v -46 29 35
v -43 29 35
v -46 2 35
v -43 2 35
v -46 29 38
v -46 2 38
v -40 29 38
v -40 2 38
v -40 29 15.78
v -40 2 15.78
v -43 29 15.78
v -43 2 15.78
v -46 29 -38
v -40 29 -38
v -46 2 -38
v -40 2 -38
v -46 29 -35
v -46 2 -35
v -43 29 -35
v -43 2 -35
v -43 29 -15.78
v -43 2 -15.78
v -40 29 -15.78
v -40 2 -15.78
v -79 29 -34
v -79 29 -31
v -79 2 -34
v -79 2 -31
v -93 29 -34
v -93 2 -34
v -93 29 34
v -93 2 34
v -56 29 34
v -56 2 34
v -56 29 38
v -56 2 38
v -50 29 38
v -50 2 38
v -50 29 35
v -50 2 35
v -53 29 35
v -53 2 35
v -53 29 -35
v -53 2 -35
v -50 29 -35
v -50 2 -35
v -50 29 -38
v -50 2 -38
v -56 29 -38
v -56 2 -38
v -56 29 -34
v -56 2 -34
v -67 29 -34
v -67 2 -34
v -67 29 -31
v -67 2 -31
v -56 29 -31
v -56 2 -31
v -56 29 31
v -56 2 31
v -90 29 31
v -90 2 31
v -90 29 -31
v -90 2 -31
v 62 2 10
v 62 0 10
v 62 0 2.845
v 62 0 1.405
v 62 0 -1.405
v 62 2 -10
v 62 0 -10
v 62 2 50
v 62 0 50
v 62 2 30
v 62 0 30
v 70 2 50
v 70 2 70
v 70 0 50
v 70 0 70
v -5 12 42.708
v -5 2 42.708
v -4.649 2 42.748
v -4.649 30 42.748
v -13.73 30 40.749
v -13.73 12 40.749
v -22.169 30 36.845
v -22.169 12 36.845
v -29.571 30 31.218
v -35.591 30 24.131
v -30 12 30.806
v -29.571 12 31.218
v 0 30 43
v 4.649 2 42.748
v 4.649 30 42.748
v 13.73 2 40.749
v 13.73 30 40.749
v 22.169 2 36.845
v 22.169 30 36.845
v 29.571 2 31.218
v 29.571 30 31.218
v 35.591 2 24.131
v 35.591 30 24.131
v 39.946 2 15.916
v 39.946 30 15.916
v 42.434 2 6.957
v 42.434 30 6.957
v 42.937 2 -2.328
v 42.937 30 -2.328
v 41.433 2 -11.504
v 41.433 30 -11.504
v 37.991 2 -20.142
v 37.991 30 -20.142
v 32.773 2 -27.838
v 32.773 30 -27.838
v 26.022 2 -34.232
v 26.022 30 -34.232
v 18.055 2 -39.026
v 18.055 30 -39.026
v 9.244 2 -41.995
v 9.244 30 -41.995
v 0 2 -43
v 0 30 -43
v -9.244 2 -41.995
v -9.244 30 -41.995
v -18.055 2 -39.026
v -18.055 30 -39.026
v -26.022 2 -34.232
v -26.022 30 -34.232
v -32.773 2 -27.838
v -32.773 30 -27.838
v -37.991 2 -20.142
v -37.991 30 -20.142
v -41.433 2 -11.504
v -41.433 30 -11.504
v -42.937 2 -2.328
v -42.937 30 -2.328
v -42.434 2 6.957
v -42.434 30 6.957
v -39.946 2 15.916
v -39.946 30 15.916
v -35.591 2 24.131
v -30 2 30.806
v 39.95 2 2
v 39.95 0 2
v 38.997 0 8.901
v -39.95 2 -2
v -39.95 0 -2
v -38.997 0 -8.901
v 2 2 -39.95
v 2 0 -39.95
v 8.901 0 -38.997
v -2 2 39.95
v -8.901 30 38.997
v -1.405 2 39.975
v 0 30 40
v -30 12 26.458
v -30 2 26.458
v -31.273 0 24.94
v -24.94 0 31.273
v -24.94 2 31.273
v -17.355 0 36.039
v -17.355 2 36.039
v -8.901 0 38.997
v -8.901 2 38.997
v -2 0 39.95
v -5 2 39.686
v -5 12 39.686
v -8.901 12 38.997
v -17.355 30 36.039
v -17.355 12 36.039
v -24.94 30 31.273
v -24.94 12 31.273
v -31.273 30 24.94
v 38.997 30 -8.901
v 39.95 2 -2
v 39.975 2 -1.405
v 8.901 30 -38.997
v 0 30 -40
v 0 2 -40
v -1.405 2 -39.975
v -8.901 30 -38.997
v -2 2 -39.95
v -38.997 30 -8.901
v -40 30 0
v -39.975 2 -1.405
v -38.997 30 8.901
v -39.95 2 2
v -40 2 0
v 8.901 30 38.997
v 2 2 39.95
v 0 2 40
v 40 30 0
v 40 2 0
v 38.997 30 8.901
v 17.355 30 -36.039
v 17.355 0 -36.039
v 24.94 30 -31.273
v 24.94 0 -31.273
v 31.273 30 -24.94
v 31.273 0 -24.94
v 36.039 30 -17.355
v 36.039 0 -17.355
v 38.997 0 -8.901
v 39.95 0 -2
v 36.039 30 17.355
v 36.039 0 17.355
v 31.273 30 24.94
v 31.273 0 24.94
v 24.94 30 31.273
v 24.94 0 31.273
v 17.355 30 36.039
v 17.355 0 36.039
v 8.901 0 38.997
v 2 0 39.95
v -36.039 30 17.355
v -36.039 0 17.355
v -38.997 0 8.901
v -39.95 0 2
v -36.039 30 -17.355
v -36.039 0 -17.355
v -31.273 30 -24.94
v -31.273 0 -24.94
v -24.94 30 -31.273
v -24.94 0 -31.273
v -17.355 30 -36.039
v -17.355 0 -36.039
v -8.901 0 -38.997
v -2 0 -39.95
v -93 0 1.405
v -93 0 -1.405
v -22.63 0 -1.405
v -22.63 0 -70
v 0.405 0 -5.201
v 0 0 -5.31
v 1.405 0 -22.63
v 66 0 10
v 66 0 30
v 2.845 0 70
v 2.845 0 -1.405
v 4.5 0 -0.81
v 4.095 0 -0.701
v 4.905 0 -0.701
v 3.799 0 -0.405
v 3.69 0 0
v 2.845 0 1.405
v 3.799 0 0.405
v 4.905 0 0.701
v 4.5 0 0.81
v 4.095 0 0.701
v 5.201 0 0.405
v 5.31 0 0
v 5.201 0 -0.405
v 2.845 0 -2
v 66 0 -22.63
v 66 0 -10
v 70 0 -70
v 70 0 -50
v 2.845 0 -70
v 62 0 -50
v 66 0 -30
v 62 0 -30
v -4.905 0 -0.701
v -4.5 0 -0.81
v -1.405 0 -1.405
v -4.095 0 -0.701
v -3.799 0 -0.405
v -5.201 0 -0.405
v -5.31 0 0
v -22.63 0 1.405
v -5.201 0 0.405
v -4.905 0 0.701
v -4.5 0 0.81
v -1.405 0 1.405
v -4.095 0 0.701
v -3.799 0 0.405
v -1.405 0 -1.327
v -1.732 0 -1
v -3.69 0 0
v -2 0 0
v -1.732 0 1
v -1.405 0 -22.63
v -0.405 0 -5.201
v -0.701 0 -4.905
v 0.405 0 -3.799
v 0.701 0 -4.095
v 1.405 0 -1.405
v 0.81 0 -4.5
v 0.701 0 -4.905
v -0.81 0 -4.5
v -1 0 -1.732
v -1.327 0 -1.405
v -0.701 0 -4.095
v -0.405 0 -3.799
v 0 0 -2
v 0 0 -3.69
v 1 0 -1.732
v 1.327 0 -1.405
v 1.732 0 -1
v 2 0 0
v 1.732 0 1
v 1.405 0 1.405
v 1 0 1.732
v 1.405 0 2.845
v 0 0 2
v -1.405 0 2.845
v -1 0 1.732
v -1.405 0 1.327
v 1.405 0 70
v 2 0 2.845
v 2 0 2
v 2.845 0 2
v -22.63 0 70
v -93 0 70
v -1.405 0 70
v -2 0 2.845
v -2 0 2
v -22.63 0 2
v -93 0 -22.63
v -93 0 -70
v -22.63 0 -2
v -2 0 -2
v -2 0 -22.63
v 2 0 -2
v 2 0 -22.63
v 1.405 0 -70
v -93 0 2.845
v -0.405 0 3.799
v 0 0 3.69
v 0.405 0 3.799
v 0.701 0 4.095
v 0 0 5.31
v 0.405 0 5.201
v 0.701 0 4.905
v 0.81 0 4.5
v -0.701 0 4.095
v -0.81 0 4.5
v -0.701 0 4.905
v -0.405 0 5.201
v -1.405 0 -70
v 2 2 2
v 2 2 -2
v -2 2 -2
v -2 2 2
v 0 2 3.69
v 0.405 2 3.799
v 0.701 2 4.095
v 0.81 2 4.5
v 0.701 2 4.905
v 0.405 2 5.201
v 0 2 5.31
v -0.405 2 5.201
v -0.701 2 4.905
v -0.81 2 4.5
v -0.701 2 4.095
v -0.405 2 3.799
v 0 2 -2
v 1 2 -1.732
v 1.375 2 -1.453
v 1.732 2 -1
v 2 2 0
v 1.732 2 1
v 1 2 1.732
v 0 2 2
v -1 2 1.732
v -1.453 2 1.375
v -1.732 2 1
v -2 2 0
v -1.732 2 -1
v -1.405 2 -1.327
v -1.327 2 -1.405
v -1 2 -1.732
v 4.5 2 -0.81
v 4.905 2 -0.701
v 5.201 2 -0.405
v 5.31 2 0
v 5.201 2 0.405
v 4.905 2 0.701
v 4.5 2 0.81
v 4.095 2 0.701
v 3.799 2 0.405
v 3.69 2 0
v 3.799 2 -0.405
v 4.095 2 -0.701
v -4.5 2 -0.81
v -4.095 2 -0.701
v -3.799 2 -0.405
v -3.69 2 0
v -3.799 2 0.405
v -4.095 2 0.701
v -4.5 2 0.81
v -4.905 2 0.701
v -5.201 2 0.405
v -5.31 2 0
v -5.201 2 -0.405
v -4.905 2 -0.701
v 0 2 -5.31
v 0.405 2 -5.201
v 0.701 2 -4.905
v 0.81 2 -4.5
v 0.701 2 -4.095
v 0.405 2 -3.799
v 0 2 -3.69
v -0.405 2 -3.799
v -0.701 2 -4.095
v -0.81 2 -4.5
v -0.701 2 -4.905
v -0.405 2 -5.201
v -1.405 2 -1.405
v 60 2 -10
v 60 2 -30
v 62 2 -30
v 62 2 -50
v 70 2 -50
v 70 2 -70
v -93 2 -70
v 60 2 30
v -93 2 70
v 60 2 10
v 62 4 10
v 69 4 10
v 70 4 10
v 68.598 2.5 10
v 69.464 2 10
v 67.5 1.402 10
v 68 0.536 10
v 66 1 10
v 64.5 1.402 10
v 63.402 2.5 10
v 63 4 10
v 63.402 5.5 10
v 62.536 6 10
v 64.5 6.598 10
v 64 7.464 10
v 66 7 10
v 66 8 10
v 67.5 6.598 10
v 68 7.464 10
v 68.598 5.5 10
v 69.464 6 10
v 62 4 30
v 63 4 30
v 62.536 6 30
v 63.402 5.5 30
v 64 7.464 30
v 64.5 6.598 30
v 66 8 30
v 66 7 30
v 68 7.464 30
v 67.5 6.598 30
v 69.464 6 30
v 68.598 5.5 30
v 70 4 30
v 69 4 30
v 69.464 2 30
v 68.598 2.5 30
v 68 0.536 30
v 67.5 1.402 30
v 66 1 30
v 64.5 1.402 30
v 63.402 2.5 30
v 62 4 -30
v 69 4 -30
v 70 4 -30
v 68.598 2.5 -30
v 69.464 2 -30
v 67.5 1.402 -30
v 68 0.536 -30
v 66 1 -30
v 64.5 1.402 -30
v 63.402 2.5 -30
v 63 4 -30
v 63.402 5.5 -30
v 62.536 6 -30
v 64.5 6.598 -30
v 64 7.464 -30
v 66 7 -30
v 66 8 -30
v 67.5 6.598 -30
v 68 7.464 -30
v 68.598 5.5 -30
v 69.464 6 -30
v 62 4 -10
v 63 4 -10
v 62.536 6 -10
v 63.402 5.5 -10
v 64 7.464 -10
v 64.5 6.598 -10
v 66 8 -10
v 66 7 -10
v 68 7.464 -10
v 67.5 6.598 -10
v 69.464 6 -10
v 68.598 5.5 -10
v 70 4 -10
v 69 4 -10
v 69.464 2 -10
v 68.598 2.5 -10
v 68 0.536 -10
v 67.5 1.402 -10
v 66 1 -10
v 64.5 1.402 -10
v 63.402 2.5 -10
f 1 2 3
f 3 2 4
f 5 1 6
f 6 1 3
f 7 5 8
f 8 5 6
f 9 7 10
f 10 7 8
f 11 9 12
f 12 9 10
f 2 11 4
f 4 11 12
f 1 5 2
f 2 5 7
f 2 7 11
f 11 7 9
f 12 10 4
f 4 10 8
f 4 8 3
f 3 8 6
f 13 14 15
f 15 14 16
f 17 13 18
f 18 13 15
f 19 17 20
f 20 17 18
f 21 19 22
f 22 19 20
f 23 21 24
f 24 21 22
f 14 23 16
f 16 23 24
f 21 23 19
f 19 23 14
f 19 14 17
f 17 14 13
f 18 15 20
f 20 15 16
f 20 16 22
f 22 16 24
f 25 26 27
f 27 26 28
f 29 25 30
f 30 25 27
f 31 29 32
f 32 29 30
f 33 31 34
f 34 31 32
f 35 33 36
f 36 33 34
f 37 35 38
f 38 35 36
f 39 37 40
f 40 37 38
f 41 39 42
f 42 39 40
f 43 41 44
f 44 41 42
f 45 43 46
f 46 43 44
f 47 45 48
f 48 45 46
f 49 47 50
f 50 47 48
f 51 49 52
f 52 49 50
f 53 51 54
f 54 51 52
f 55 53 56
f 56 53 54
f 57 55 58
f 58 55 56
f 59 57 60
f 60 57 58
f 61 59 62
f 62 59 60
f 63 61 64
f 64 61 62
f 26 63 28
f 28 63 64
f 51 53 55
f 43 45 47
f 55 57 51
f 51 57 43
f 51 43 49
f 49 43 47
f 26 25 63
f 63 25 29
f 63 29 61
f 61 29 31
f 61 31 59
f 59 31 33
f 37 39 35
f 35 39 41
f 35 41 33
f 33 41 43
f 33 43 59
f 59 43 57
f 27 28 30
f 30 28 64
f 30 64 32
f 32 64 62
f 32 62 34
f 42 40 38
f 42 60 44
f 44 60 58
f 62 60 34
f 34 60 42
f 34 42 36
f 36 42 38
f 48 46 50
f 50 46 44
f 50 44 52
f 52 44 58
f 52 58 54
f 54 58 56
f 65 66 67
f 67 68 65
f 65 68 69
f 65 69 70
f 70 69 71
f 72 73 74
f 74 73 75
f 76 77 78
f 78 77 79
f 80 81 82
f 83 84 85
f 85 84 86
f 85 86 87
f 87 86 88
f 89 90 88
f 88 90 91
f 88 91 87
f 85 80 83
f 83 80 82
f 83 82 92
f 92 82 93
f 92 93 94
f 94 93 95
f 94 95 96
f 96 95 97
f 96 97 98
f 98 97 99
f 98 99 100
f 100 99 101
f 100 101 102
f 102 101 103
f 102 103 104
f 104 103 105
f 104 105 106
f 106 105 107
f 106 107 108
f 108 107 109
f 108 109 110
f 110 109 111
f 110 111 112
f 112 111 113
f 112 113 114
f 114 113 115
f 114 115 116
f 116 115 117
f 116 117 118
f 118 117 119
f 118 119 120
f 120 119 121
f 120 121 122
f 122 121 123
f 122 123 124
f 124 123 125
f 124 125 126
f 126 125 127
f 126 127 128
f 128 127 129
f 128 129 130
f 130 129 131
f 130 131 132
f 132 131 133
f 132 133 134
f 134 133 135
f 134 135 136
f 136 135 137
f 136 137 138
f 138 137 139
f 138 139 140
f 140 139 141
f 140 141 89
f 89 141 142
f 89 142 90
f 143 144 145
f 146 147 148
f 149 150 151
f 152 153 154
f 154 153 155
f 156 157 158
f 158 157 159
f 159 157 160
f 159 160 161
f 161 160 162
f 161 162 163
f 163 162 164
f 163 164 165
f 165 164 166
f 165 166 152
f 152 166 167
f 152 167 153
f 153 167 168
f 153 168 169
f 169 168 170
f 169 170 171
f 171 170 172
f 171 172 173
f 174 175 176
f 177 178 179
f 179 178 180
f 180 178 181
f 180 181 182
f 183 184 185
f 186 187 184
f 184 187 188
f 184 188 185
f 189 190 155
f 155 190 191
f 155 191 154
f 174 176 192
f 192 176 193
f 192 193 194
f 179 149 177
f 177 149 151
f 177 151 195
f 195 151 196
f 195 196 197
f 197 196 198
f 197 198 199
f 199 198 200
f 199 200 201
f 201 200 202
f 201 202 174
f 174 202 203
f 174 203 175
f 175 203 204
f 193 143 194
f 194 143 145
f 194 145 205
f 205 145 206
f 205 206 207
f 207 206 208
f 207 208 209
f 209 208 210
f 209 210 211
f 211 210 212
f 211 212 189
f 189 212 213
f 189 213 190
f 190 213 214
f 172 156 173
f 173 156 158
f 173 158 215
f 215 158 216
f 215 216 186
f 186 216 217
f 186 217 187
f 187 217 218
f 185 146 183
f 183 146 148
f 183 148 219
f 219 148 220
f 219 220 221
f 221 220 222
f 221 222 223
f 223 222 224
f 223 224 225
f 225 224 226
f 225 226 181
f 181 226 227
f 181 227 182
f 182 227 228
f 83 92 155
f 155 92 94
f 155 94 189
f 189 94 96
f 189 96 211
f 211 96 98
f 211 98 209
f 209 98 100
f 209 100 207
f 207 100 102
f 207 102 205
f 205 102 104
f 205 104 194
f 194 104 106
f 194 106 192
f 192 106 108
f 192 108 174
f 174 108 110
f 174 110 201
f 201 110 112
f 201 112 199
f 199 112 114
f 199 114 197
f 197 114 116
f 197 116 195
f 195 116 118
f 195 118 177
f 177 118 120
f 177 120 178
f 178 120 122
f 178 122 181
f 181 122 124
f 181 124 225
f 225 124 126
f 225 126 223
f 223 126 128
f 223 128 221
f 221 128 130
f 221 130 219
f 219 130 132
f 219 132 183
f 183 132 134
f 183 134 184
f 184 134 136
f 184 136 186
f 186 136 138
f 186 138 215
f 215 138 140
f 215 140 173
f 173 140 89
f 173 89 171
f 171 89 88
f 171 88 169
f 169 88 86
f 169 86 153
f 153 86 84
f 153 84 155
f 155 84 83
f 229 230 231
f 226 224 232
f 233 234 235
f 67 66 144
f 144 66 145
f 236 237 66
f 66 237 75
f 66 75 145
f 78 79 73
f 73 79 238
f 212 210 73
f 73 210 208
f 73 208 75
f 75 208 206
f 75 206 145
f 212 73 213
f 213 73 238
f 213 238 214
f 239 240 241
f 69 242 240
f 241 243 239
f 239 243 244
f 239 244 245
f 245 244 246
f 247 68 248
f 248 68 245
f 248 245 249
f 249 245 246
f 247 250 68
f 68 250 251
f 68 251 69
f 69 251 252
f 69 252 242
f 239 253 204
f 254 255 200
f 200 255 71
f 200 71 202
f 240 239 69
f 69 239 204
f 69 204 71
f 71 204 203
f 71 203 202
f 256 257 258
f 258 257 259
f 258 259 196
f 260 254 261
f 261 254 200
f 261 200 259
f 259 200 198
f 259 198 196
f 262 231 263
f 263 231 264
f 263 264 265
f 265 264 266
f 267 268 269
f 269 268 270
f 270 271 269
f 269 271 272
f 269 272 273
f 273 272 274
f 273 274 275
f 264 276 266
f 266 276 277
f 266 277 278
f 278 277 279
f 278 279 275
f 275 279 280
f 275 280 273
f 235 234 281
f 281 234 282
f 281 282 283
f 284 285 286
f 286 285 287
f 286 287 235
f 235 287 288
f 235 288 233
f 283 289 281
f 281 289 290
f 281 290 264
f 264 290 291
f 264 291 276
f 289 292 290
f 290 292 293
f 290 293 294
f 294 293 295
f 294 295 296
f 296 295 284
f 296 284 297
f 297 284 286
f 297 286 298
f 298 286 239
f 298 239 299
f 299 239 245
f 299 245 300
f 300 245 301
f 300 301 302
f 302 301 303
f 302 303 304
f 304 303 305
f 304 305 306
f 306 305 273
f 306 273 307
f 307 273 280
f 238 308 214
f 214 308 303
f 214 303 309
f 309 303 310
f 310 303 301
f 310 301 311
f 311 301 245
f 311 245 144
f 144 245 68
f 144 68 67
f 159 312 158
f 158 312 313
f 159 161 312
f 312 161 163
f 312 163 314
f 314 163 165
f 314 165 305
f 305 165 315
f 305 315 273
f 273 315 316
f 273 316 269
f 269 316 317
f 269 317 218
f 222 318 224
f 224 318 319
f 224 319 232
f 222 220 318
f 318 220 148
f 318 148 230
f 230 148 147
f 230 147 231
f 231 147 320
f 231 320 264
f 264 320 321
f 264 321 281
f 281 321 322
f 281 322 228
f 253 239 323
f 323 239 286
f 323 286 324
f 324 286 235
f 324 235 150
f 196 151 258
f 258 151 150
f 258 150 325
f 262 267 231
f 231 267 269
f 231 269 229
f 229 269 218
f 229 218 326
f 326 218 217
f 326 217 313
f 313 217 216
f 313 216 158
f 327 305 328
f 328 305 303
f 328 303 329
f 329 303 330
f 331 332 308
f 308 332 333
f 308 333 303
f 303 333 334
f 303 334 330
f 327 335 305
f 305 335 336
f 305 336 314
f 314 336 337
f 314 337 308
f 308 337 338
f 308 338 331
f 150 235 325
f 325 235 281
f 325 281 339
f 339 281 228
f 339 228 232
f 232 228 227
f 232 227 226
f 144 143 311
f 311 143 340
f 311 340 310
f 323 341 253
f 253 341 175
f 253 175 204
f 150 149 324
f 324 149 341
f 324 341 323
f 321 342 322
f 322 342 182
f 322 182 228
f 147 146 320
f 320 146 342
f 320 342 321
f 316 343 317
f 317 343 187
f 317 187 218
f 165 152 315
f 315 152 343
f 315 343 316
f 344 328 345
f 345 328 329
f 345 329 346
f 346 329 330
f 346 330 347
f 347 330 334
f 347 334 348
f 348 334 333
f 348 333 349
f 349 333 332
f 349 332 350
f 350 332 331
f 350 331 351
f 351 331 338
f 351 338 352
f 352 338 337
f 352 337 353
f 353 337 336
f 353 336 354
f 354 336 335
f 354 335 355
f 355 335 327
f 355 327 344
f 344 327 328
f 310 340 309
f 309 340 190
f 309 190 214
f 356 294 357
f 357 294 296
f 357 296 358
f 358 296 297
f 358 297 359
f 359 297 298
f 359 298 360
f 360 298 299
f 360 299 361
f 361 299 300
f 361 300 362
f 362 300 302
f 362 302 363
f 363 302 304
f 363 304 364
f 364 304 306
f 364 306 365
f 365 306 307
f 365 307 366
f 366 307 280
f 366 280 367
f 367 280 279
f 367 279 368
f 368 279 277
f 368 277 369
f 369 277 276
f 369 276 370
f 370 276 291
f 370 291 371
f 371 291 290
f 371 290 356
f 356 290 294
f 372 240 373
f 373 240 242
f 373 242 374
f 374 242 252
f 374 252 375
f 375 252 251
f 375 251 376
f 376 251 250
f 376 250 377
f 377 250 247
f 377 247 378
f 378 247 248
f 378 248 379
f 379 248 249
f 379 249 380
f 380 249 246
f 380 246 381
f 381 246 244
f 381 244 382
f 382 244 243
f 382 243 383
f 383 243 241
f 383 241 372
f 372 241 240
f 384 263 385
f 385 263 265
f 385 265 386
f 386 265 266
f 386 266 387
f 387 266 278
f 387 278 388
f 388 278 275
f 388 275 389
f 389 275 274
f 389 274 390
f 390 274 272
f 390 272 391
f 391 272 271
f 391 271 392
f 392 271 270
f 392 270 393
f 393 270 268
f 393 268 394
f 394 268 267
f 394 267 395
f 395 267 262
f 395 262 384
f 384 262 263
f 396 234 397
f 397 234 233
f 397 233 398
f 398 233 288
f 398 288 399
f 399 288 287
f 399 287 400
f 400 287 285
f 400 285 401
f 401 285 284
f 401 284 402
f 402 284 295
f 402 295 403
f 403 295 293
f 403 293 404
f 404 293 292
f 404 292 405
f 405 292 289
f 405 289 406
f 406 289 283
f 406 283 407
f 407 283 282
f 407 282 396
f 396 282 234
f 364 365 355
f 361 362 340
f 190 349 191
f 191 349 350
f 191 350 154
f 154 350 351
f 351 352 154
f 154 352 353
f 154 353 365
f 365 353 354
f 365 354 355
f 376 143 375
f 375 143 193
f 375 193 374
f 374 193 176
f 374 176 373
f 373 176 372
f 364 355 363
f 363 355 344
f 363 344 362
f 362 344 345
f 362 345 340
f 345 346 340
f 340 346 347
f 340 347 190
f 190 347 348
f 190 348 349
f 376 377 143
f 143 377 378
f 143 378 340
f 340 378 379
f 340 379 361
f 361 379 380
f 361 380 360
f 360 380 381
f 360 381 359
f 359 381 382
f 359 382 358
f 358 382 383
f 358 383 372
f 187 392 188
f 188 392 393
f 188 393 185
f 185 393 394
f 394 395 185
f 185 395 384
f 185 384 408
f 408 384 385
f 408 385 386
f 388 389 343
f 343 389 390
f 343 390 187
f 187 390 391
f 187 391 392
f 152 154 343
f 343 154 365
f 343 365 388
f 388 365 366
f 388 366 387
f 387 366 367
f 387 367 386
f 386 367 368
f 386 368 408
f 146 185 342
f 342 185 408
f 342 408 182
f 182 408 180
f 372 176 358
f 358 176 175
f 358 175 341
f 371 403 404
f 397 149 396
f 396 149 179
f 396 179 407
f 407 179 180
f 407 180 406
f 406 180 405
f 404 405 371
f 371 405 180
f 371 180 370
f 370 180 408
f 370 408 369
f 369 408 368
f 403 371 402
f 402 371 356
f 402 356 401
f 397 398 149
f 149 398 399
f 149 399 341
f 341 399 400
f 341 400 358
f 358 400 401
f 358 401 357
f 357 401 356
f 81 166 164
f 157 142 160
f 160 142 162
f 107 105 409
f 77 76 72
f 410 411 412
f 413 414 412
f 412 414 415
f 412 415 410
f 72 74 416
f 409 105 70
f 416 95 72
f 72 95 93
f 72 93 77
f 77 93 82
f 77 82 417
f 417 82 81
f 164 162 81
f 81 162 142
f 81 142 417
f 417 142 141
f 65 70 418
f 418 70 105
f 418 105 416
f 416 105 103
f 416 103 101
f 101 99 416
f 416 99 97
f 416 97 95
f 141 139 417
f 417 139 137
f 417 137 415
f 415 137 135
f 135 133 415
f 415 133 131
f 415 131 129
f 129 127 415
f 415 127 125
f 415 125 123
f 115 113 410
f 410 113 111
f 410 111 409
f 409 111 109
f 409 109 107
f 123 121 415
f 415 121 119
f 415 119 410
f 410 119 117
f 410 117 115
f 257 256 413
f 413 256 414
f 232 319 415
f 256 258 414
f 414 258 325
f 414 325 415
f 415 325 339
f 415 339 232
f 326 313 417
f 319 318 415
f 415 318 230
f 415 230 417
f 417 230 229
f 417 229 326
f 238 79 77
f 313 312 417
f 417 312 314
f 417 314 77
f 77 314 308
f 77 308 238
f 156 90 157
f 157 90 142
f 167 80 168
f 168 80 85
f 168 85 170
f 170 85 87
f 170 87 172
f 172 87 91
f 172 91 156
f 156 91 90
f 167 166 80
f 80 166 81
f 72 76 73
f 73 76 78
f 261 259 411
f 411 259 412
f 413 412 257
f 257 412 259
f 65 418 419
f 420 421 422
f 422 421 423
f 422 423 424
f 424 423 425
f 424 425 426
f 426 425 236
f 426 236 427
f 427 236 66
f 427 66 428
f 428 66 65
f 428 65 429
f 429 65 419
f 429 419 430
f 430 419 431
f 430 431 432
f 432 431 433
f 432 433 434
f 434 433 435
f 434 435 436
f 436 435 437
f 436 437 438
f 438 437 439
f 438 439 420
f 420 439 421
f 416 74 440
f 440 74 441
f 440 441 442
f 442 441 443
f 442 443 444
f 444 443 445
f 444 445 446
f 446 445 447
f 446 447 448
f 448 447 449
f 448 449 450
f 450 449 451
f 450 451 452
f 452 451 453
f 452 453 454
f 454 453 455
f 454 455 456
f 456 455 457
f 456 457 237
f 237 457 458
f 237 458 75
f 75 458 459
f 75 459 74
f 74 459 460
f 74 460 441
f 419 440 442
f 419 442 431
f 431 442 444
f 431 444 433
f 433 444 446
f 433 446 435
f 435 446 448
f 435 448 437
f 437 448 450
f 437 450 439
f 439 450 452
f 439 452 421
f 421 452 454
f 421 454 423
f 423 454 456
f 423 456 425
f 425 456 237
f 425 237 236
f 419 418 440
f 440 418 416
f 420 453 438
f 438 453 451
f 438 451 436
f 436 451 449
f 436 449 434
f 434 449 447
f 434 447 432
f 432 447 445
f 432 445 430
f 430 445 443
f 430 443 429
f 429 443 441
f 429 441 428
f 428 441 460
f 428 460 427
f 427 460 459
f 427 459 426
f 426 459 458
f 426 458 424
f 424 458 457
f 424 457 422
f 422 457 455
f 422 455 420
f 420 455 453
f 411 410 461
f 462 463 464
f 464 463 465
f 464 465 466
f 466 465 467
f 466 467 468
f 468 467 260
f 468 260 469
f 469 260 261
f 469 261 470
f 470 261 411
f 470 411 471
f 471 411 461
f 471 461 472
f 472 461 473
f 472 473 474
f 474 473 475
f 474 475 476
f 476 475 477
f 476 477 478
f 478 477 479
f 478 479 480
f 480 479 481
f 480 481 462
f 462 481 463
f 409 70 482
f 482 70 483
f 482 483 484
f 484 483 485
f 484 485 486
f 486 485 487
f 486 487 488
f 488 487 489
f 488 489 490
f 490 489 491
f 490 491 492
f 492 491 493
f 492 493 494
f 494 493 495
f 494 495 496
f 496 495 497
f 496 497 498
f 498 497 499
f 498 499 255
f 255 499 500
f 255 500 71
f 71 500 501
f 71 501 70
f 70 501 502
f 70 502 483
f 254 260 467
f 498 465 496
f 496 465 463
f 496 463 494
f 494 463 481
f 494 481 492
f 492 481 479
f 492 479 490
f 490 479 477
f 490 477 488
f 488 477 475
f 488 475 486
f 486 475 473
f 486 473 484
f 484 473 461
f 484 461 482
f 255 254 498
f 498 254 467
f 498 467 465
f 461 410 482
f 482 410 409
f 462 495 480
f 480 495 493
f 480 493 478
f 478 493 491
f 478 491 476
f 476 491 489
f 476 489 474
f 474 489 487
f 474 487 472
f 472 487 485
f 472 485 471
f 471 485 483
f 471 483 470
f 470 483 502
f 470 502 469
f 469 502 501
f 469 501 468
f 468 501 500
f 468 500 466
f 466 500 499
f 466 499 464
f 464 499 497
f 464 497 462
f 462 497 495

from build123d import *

# Parameters (mm, degrees)
CROQUIS1_R                 = 43
CROQUIS1_R_2               = 40
SALIENTE_EXTRUIR1_DEPTH    = 30
CROQUIS3_R                 = 0.81
CROQUIS3_R_2               = 2
SALIENTE_EXTRUIR2_DEPTH    = 2
CROQUIS4_W                 = 163
CROQUIS4_H                 = 140
CROQUIS4_R                 = 43
SALIENTE_EXTRUIR3_DEPTH    = 2
SALIENTE_EXTRUIR17_DEPTH   = 27
CORTAR_EXTRUIR1_REACH      = 172.731
CORTAR_EXTRUIR1_END_RADIUS = 40
CROQUIS15_W                = 25
CROQUIS15_H                = 10
CROQUIS17_W                = 8
CROQUIS17_H                = 100
CORTAR_EXTRUIR2_DEPTH      = 2
SALIENTE_EXTRUIR19_START   = 20
CROQUIS18_R                = 3
SALIENTE_EXTRUIR19_DEPTH   = 20
MATRIZL2_COUNT             = 2
MATRIZL2_PITCH             = 40


with BuildPart() as part:
    # Croquis1 → Saliente-Extruir1 (new body)
    with BuildSketch(Plane(origin=(0, 0, 0), x_dir=(1, 0, 0), z_dir=(0, 1, 0))):
        with Locations(Location((0, 0, 0), (0, 0, 270))):
            Circle(CROQUIS1_R)
        with Locations(Location((0, 0, 0), (0, 0, 270))):
            Circle(CROQUIS1_R_2, mode=Mode.SUBTRACT)
    extrude(amount=SALIENTE_EXTRUIR1_DEPTH)

    # Croquis3 → Saliente-Extruir2 (add)
    with BuildSketch(Plane(origin=(0, 0, 0), x_dir=(1, 0, 0), z_dir=(0, 1, 0))):
        with BuildLine():
            Line((-2, 39.949968711), (-2, 2))
            Line((-2, 2), (-39.949968711, 2))
            ThreePointArc((-39.949968711, 2), (-40, 0), (-39.949968711, -2))
            Line((-39.949968711, -2), (-2, -2))
            Line((-2, -2), (-2, -39.949968711))
            ThreePointArc((-2, -39.949968711), (0, -40), (2, -39.949968711))
            Line((2, -39.949968711), (2, -2))
            Line((2, -2), (39.949968711, -2))
            ThreePointArc((39.949968711, -2), (39.987490222, -1.000312842), (40, 0))
            ThreePointArc((40, 0), (39.987490222, 1.000312842), (39.949968711, 2))
            Line((39.949968711, 2), (2, 2))
            Line((2, 2), (2, 39.949968711))
            ThreePointArc((2, 39.949968711), (0, 40), (-2, 39.949968711))
        make_face()
        with Locations(Location((0, -4.5, 0), (0, 0, 270))):
            Circle(CROQUIS3_R, mode=Mode.SUBTRACT)
        with Locations(Location((-4.5, 0, 0), (0, 0, 270))):
            Circle(CROQUIS3_R, mode=Mode.SUBTRACT)
        with Locations(Location((0, 0, 0), (0, 0, 270))):
            Circle(CROQUIS3_R_2, mode=Mode.SUBTRACT)
        with Locations(Location((4.5, 0, 0), (0, 0, 270))):
            Circle(CROQUIS3_R, mode=Mode.SUBTRACT)
        with Locations(Location((0, 4.5, 0), (0, 0, 270))):
            Circle(CROQUIS3_R, mode=Mode.SUBTRACT)
    extrude(amount=SALIENTE_EXTRUIR2_DEPTH)

    # Croquis4 → Saliente-Extruir3 (add)
    with BuildSketch(Plane(origin=(0, 0, 0), x_dir=(1, 0, 0), z_dir=(0, 1, 0))):
        with Locations((-11.5, 0)):
            Rectangle(CROQUIS4_W, CROQUIS4_H)
        with Locations(Location((0, 0, 0), (0, 0, 90))):
            Circle(CROQUIS4_R, mode=Mode.SUBTRACT)
    extrude(amount=SALIENTE_EXTRUIR3_DEPTH)

    # Cortar-Extruir1: up to this cylinder (the profile starts outside it)
    cortar_extruir1_end = Plane(origin=(0, 7, 0), z_dir=(0, -1, 0)) * Cylinder(CORTAR_EXTRUIR1_END_RADIUS, 426.462, mode=Mode.PRIVATE)
    # Croquis15 → Cortar-Extruir1 (cut, up to the surface)
    with BuildSketch(Plane.XY.offset(70), mode=Mode.PRIVATE) as cortar_extruir1_sk1:
        with Locations((-17.5, 7)):
            Rectangle(CROQUIS15_W, CROQUIS15_H)
    cortar_extruir1_tool1 = extrude(cortar_extruir1_sk1.sketch, amount=-CORTAR_EXTRUIR1_REACH, mode=Mode.PRIVATE) - cortar_extruir1_end
    add(cortar_extruir1_tool1.solids().sort_by_distance((-17.5, 7, 70))[0], mode=Mode.SUBTRACT)
    # Croquis15 → Cortar-Extruir1 (cut, up to the surface)
    with BuildSketch(Plane.XY.offset(70), mode=Mode.PRIVATE) as cortar_extruir1_sk2:
        with Locations((-17.5, 7)):
            Rectangle(CROQUIS15_W, CROQUIS15_H)
    cortar_extruir1_tool2 = extrude(cortar_extruir1_sk2.sketch, amount=-CORTAR_EXTRUIR1_REACH, mode=Mode.PRIVATE) - cortar_extruir1_end
    add(cortar_extruir1_tool2.solids().sort_by_distance((-17.5, 7, 70))[0], mode=Mode.SUBTRACT)

    # Croquis17 → Cortar-Extruir2 (cut)
    with BuildSketch(Plane(origin=(0, 2, 0), x_dir=(1, 0, 0), z_dir=(0, 1, 0))):
        with Locations((66, 0)):
            Rectangle(CROQUIS17_W, CROQUIS17_H)
    extrude(amount=-CORTAR_EXTRUIR2_DEPTH, mode=Mode.SUBTRACT)

    # Croquis18 → Saliente-Extruir19 (add)
    with BuildSketch(Plane(origin=(0, 0, 50), x_dir=(-1, 0, 0), z_dir=(0, 0, -1)).offset(SALIENTE_EXTRUIR19_START)):
        with BuildLine():
            Line((-62, 0), (-62, 2))
            Line((-62, 2), (-60, 2))
            Line((-60, 2), (-62, 4))
            ThreePointArc((-62, 4), (-68.828427125, 6.828427125), (-66, 0))
            Line((-66, 0), (-62, 0))
        make_face()
        with Locations((-66, 4)):
            Circle(CROQUIS18_R, mode=Mode.SUBTRACT)
    saliente_extruir19 = extrude(amount=SALIENTE_EXTRUIR19_DEPTH)

    # MatrizL2: Saliente-Extruir19 ×2
    with Locations(*[(0, 0, -i * MATRIZL2_PITCH) for i in range(1, MATRIZL2_COUNT)]):
        add(saliente_extruir19)


with BuildPart() as body_2:
    # Croquis14 → Saliente-Extruir17 (new body)
    with BuildSketch(Plane(origin=(0, 2, 0), x_dir=(1, 0, 0), z_dir=(0, 1, 0))):
        Polygon((-93, 34), (-93, -34), (-56, -34), (-56, -31), (-90, -31), (-90, 31), (-79, 31), (-79, 34), align=None)
        Polygon((-56, -31), (-56, -34), (-53, -34), (-53, 34), (-56, 34), (-67, 34), (-67, 31), (-56, 31), align=None)
        Polygon((-53, -34), (-56, -34), (-56, -38), (-50, -38), (-50, -35), (-53, -35), align=None)
        Polygon((-46, -35), (-46, -38), (-40, -38), (-40, -15.779733838), (-43, -15.779733838), (-43, -35), align=None)
        Polygon((-46, 38), (-46, 35), (-43, 35), (-43, 15.779733838), (-40, 15.779733838), (-40, 38), align=None)
        Polygon((-56, 34), (-53, 34), (-53, 35), (-50, 35), (-50, 38), (-56, 38), align=None)
    extrude(amount=SALIENTE_EXTRUIR17_DEPTH)


solid = Compound([part.part, body_2.part])
